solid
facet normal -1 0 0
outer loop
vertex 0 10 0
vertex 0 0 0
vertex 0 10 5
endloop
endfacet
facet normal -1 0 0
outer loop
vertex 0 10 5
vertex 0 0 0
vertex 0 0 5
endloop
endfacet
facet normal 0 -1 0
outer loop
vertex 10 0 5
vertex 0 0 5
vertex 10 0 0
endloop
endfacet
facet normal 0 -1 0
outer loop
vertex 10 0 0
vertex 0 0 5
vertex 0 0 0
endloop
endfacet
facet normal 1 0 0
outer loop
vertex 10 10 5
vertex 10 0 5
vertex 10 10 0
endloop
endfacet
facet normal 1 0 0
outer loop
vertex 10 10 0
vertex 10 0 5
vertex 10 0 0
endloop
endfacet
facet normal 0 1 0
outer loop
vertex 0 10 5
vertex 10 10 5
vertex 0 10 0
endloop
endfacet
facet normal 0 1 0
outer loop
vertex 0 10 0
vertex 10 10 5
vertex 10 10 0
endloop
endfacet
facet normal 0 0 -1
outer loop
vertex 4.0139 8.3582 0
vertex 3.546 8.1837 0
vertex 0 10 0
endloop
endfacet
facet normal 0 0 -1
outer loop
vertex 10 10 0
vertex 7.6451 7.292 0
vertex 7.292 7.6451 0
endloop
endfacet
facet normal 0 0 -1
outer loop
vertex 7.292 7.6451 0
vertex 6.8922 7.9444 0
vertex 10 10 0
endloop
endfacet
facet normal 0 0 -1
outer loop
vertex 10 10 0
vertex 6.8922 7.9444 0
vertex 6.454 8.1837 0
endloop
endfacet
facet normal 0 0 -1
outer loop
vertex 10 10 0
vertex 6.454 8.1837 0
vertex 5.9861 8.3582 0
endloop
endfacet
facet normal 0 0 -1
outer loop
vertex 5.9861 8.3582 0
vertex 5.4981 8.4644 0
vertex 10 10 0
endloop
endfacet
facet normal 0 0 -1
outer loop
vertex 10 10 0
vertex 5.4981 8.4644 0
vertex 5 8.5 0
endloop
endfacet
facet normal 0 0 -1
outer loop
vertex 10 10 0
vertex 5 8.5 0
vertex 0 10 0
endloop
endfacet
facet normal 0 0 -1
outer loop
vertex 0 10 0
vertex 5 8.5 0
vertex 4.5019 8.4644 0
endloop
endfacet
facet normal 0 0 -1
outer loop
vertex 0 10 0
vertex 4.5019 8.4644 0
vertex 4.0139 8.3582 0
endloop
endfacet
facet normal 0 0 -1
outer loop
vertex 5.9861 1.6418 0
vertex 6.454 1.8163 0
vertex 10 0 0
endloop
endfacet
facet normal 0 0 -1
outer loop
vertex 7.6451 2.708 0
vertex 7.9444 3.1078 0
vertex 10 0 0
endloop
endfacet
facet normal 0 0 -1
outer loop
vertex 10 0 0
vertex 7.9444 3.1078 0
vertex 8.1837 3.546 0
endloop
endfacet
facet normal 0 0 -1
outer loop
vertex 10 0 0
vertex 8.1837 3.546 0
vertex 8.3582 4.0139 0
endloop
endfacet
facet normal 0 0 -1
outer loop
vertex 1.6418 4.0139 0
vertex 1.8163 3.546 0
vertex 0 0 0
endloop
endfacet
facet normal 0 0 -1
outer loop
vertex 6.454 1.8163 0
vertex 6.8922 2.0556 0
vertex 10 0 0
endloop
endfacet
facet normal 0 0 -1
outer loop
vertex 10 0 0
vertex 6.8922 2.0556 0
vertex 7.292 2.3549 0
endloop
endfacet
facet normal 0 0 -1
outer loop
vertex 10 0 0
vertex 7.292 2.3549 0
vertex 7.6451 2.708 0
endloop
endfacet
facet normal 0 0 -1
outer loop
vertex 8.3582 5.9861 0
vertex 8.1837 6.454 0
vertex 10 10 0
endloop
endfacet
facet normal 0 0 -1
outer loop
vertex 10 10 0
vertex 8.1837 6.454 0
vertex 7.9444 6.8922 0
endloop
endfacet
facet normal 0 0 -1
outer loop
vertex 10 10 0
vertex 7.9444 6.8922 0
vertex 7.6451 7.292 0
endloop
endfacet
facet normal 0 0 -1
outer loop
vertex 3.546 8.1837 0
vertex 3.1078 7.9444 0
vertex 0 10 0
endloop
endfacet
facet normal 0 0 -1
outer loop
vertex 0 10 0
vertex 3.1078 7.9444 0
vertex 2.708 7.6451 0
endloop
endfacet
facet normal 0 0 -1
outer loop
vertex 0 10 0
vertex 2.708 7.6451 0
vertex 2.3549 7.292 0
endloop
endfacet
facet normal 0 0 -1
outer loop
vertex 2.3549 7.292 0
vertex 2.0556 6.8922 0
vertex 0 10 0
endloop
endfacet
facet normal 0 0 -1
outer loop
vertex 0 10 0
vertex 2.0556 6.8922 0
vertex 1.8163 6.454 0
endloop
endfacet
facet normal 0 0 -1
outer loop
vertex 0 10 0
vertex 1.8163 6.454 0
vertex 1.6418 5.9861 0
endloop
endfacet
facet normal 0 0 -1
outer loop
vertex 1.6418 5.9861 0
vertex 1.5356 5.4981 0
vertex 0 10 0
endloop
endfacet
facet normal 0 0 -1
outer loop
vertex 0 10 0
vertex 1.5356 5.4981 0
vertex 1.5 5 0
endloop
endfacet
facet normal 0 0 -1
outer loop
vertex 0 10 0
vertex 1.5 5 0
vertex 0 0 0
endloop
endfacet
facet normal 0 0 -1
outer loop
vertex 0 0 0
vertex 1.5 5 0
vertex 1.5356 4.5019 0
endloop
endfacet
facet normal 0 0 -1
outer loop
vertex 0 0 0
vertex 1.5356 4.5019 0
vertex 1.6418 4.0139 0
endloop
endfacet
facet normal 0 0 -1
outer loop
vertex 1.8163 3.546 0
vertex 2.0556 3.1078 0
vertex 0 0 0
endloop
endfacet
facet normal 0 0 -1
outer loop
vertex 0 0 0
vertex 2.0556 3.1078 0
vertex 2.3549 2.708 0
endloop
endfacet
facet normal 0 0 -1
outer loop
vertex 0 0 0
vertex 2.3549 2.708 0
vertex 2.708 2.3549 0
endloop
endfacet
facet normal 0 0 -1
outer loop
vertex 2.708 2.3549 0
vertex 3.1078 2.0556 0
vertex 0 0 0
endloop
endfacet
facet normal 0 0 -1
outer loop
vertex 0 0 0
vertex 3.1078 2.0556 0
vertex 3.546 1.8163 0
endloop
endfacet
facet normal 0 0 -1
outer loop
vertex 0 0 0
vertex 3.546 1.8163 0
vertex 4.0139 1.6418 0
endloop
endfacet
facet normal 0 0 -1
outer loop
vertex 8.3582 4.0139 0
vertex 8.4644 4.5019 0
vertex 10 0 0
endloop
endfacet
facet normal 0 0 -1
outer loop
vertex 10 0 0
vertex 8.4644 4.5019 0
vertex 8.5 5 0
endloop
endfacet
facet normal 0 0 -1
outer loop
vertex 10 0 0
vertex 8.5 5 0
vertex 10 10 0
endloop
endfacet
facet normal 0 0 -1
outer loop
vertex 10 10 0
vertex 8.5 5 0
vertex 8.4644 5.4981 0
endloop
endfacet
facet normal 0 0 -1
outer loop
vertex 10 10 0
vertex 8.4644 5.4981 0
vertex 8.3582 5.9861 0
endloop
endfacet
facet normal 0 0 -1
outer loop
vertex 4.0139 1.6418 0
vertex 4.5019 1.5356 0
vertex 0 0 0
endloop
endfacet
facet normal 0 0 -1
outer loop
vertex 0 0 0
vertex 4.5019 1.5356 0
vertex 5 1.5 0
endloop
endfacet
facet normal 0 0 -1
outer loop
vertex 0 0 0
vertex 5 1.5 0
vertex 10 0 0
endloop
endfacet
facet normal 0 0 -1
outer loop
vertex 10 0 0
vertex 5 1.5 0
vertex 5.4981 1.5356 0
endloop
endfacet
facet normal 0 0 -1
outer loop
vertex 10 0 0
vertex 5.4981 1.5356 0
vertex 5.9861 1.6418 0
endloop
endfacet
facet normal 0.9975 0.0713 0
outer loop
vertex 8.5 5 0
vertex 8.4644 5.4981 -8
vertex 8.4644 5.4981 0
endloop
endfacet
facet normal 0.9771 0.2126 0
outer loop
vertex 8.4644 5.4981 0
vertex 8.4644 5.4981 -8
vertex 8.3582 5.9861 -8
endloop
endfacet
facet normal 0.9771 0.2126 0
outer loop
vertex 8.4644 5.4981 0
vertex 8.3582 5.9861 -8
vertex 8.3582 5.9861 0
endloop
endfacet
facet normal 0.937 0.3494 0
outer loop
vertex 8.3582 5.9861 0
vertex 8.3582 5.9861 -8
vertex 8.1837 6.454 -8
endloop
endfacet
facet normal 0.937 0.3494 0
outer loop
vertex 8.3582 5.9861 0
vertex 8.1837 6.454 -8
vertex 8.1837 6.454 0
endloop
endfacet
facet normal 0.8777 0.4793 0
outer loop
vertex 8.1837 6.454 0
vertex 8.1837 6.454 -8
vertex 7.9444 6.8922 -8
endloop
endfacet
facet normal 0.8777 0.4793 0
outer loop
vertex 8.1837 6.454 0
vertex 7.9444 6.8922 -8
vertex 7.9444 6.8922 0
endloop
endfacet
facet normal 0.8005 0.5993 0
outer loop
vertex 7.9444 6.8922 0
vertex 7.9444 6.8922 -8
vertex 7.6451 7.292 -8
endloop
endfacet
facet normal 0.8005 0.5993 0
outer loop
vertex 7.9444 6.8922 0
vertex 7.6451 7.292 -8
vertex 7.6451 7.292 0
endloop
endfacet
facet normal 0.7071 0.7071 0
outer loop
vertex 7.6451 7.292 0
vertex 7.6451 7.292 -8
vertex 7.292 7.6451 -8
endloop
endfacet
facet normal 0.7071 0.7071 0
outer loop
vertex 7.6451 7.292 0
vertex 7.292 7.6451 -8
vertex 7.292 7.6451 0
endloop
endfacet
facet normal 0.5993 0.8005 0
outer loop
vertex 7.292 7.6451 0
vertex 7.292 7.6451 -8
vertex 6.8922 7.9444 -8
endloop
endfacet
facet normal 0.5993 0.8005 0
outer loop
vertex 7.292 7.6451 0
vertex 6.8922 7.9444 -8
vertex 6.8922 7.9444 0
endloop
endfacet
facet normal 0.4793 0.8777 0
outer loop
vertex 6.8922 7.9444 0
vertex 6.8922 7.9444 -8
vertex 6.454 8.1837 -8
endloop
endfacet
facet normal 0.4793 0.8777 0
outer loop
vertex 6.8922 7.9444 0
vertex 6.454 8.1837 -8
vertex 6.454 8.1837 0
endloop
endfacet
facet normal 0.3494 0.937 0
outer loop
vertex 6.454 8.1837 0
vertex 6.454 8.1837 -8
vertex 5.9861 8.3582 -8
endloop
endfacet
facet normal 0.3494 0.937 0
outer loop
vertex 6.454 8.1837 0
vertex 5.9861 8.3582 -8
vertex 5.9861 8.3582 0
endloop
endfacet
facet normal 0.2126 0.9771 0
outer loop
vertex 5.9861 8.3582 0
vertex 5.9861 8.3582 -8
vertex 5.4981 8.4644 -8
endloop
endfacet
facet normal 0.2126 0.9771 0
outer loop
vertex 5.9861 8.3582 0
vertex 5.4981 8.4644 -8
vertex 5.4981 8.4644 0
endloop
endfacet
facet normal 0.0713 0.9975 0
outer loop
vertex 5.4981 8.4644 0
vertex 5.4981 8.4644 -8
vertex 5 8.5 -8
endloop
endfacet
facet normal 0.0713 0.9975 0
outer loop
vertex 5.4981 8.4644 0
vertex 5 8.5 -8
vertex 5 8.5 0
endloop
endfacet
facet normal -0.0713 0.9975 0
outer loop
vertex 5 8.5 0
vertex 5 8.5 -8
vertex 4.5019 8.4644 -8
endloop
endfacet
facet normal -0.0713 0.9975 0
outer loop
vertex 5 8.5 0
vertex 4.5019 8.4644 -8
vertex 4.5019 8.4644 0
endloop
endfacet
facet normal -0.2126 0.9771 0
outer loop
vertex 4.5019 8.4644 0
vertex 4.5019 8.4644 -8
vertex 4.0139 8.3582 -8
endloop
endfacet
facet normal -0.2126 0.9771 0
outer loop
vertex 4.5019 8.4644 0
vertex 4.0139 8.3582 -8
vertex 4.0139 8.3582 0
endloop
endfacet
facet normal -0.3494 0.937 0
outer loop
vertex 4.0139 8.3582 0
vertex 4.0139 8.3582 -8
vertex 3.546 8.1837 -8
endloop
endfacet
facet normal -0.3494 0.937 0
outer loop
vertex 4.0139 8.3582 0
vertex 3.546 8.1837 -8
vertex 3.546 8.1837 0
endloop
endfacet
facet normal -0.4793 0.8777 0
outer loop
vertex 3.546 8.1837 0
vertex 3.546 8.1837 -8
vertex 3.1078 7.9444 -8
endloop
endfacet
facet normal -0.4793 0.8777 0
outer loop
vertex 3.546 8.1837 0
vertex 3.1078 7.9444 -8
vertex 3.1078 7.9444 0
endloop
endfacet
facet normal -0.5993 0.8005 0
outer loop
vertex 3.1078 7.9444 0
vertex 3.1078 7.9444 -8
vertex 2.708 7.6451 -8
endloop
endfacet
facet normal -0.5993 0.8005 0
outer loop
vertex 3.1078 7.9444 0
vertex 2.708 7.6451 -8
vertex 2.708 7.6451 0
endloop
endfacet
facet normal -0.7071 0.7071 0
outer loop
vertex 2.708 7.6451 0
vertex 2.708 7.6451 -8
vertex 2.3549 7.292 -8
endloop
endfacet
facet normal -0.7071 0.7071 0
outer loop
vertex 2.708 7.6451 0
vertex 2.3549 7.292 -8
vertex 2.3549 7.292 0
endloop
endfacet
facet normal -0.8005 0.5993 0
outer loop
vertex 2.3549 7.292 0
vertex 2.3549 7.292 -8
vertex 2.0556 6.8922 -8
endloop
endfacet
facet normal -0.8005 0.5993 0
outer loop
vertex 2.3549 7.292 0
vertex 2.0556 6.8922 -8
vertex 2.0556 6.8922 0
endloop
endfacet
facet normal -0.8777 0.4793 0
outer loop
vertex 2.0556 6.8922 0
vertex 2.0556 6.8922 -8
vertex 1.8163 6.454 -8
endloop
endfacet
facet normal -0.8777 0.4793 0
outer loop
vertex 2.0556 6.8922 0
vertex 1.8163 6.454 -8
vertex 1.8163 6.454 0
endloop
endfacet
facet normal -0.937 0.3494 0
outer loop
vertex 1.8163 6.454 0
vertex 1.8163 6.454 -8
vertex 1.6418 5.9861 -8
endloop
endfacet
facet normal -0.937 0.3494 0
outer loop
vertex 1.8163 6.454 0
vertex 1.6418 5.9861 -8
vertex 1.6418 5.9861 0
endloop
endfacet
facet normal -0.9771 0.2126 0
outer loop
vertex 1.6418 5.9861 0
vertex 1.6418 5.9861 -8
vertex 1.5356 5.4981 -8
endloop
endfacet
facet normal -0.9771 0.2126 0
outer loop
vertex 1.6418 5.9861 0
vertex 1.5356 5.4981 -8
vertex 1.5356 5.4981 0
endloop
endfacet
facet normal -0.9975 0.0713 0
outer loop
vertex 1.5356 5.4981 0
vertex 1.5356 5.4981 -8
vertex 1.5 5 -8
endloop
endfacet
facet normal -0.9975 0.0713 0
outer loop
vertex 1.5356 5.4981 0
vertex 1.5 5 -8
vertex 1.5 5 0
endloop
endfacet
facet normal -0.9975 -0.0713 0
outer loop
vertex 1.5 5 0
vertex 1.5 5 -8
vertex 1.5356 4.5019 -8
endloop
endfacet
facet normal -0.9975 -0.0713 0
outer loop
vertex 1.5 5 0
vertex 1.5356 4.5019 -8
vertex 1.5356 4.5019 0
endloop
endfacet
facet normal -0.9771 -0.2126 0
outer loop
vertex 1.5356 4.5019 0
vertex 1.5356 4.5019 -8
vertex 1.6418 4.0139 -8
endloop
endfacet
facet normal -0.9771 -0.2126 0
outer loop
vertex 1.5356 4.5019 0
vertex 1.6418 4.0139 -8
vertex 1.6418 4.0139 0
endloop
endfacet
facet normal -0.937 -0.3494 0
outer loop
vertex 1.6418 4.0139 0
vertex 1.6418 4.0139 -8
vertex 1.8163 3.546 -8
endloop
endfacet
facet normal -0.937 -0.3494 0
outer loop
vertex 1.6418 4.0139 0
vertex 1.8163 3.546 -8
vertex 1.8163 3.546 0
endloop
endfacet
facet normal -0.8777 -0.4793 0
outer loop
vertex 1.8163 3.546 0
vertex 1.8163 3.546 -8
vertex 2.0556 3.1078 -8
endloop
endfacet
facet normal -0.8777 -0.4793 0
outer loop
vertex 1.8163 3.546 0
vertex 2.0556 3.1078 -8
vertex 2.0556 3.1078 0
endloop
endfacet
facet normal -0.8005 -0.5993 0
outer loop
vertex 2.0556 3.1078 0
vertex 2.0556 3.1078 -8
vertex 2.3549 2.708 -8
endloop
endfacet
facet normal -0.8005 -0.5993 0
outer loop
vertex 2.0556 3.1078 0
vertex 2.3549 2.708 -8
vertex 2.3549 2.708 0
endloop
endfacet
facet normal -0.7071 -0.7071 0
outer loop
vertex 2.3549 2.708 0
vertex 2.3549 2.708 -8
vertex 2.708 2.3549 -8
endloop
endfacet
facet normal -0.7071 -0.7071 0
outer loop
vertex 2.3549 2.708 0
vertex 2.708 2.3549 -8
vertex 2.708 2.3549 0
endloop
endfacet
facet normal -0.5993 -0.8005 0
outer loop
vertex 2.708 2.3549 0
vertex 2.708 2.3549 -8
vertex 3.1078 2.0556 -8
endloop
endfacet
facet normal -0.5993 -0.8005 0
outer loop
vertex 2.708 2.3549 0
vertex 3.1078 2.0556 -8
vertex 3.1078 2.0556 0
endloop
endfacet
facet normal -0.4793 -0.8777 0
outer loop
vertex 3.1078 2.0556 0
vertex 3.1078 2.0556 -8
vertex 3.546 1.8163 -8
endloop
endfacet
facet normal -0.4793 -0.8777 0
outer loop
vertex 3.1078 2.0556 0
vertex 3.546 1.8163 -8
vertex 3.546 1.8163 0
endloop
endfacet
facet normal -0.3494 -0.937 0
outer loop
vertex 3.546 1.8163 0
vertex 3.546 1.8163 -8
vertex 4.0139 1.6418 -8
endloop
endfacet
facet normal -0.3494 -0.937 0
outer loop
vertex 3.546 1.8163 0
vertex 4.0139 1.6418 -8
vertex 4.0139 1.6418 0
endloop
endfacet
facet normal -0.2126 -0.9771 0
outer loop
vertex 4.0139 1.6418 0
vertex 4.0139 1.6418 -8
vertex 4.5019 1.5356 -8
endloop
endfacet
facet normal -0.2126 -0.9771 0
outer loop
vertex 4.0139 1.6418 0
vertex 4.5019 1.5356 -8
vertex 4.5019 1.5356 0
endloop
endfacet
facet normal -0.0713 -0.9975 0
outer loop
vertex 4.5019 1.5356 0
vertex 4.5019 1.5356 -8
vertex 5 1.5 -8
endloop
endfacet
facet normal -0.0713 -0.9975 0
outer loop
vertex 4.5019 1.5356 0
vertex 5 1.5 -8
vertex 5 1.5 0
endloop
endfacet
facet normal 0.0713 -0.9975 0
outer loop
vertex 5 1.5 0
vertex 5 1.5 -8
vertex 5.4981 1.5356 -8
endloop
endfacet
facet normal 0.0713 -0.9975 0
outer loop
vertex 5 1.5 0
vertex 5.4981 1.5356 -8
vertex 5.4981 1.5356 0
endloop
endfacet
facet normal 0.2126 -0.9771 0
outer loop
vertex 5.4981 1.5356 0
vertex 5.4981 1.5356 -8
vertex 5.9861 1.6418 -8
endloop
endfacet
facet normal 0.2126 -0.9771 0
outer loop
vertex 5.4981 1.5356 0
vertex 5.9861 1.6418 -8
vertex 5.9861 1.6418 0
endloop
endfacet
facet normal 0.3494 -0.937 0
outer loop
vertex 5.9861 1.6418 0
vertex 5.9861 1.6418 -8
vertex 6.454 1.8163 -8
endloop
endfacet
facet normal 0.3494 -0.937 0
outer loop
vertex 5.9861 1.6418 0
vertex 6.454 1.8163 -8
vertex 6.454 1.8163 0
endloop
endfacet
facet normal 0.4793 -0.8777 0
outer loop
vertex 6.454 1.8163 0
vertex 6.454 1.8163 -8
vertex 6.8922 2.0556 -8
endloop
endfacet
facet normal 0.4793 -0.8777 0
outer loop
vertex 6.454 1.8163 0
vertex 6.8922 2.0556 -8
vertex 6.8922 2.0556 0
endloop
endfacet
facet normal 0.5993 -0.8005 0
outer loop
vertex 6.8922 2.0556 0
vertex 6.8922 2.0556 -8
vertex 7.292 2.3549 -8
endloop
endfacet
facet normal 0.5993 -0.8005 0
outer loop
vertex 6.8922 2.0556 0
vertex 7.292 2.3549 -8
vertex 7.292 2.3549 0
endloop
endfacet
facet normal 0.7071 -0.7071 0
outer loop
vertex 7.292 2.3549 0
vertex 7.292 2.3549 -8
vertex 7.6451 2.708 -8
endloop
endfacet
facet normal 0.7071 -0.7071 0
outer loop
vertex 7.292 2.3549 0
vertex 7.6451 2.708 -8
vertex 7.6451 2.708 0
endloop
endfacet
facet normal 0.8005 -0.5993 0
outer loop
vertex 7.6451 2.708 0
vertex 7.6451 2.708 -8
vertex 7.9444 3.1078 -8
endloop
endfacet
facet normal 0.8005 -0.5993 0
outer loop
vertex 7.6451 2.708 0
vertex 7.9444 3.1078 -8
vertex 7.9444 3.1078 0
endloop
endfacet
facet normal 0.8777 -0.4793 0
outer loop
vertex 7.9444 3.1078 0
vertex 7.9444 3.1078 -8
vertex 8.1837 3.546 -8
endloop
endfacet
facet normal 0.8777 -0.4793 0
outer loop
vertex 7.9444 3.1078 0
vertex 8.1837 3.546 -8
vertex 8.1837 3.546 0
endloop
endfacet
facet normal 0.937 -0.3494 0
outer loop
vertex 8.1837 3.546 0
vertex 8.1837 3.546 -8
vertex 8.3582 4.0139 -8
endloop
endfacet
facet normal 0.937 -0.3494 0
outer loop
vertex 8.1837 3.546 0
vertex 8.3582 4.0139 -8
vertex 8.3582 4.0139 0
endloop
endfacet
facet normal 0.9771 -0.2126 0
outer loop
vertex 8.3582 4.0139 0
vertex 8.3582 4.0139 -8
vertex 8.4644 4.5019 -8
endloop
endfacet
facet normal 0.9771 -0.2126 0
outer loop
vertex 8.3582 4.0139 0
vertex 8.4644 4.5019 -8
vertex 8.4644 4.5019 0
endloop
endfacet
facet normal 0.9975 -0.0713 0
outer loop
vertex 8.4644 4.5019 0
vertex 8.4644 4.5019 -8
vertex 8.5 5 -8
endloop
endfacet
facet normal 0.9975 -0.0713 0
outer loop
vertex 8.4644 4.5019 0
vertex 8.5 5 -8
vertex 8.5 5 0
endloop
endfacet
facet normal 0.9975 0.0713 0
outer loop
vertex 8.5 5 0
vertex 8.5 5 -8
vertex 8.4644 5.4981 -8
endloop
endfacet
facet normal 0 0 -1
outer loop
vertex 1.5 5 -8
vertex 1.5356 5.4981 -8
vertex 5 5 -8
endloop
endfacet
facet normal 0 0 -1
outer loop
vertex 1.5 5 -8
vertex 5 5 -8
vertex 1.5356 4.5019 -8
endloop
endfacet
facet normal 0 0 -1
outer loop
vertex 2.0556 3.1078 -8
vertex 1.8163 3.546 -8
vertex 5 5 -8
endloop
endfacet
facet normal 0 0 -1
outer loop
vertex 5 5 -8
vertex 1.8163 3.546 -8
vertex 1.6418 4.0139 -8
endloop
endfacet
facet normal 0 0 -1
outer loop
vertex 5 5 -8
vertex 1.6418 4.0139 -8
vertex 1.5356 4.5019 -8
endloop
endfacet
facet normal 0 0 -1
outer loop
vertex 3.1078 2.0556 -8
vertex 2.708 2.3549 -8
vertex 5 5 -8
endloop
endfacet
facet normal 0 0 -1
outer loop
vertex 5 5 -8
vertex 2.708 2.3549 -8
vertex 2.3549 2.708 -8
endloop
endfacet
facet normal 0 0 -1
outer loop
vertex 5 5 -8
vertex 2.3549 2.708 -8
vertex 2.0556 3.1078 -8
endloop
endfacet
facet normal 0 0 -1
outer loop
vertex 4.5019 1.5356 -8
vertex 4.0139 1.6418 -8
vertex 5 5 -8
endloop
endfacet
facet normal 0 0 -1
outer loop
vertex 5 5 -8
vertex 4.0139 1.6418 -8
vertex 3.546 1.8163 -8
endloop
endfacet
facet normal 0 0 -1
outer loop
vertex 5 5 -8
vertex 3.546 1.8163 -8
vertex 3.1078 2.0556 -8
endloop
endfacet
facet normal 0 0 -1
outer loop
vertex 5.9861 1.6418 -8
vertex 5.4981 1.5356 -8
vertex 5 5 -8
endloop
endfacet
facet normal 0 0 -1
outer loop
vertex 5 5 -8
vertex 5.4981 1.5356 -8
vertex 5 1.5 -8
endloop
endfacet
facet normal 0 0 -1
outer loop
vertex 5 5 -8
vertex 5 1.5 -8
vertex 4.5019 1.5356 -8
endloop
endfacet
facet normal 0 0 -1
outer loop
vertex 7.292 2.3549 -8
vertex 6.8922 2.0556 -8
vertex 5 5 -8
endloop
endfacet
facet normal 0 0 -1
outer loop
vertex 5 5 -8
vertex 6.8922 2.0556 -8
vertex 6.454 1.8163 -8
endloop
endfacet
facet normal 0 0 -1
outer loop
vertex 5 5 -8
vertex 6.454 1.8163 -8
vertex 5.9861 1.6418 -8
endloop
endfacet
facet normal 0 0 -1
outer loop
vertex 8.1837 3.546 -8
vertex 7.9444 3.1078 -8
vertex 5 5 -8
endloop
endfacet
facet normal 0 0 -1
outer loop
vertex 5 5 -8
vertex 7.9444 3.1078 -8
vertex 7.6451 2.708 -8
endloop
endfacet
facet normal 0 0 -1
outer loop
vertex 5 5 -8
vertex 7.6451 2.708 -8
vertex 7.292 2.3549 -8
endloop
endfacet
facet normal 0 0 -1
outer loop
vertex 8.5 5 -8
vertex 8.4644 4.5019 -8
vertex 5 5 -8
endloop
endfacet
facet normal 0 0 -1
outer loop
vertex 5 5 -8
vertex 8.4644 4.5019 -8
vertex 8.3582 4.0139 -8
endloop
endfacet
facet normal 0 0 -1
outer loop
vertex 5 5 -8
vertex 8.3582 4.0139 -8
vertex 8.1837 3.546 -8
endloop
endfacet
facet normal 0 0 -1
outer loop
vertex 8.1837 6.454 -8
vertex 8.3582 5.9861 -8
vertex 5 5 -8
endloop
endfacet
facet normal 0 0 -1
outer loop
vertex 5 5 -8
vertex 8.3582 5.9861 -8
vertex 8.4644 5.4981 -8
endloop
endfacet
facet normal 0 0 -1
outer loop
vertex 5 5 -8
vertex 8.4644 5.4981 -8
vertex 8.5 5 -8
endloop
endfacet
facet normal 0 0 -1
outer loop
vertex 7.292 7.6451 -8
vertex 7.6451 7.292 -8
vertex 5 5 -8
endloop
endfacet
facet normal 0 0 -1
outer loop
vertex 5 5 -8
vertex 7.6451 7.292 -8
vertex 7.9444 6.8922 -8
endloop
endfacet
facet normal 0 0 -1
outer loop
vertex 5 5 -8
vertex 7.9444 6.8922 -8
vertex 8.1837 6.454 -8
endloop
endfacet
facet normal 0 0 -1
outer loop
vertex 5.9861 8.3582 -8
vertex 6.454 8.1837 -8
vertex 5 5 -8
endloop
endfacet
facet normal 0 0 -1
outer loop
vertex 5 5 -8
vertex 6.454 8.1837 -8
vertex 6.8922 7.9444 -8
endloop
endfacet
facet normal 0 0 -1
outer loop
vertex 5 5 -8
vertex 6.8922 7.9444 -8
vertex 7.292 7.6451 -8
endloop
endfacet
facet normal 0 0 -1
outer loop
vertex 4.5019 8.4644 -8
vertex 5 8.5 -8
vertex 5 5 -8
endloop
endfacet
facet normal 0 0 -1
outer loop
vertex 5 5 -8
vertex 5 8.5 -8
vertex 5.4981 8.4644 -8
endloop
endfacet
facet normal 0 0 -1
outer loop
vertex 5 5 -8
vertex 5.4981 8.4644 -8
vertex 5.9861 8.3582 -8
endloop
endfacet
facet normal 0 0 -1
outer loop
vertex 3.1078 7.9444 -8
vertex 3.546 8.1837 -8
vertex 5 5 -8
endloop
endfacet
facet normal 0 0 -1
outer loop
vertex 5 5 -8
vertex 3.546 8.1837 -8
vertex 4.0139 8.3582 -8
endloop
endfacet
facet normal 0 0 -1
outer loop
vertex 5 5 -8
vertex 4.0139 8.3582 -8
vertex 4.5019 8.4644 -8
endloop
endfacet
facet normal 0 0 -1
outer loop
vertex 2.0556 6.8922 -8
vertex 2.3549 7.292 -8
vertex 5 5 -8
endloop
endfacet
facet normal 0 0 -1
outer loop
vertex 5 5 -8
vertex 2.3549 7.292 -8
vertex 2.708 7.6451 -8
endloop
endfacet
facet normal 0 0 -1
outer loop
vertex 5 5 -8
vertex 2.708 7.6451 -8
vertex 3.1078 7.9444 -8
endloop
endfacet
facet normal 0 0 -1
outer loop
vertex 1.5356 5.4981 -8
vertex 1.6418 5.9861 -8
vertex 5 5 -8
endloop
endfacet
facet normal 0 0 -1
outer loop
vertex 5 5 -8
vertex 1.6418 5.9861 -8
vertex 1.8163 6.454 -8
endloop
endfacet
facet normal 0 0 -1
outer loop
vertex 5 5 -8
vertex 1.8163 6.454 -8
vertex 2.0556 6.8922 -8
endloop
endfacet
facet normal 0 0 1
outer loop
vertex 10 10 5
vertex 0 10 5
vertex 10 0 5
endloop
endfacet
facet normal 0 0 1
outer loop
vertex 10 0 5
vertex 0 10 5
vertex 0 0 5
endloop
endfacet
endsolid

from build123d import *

# Parameters (mm, degrees)
SKETCH2_W           = 10
SKETCH2_H           = 10
BOSS_EXTRUDE1_DEPTH = 5
SKETCH4_W           = 15
SKETCH4_H           = 27.94
BOSS_EXTRUDE4_DEPTH = 4
SKETCH5_W           = 2.25448465
SKETCH5_H           = 27.94
BOSS_EXTRUDE5_DEPTH = 4
SKETCH6_R           = 1.5
CUT_EXTRUDE1_DEPTH  = 40
SKETCH7_R           = 3.5
BOSS_EXTRUDE6_DEPTH = 8
SKETCH8_W           = 15
SKETCH8_H           = 27.94
CUT_EXTRUDE2_DEPTH  = 8


with BuildPart() as part:
    # Sketch2 → Boss-Extrude1 (new body)
    with BuildSketch(Plane.XY):
        with Locations((5, 5)):
            Rectangle(SKETCH2_W, SKETCH2_H)
    extrude(amount=BOSS_EXTRUDE1_DEPTH)

    # Sketch4 → Boss-Extrude4 (add)
    with BuildSketch(Plane.XY.offset(5)):
        with Locations((7.5, 5)):
            Rectangle(SKETCH4_W, SKETCH4_H)
    extrude(amount=BOSS_EXTRUDE4_DEPTH)

    # Sketch5 → Boss-Extrude5 (add)
    with BuildSketch(Plane.XY.offset(9)):
        with Locations((13.872757675, 5)):
            Rectangle(SKETCH5_W, SKETCH5_H)
    extrude(amount=BOSS_EXTRUDE5_DEPTH)

    # Sketch6 → Cut-Extrude1 (cut)
    with BuildSketch(Plane.ZY.offset(-12.74551535)):
        with Locations((11.286, 16.64426)):
            Circle(SKETCH6_R)
        with Locations((11.286, -6.645)):
            Circle(SKETCH6_R)
    extrude(amount=-CUT_EXTRUDE1_DEPTH, mode=Mode.SUBTRACT)

    # Sketch7 → Boss-Extrude6 (add)
    with BuildSketch(Plane(origin=(0, 0, 0), x_dir=(-1, 0, 0), z_dir=(0, 0, -1))):
        with Locations((-5, 5)):
            Circle(SKETCH7_R)
    extrude(amount=BOSS_EXTRUDE6_DEPTH)

    # Sketch8 → Cut-Extrude2 (cut)
    with BuildSketch(Plane.XY.offset(13)):
        with Locations((7.5, 5)):
            Rectangle(SKETCH8_W, SKETCH8_H)
    extrude(amount=-CUT_EXTRUDE2_DEPTH, mode=Mode.SUBTRACT)


solid = part.part
